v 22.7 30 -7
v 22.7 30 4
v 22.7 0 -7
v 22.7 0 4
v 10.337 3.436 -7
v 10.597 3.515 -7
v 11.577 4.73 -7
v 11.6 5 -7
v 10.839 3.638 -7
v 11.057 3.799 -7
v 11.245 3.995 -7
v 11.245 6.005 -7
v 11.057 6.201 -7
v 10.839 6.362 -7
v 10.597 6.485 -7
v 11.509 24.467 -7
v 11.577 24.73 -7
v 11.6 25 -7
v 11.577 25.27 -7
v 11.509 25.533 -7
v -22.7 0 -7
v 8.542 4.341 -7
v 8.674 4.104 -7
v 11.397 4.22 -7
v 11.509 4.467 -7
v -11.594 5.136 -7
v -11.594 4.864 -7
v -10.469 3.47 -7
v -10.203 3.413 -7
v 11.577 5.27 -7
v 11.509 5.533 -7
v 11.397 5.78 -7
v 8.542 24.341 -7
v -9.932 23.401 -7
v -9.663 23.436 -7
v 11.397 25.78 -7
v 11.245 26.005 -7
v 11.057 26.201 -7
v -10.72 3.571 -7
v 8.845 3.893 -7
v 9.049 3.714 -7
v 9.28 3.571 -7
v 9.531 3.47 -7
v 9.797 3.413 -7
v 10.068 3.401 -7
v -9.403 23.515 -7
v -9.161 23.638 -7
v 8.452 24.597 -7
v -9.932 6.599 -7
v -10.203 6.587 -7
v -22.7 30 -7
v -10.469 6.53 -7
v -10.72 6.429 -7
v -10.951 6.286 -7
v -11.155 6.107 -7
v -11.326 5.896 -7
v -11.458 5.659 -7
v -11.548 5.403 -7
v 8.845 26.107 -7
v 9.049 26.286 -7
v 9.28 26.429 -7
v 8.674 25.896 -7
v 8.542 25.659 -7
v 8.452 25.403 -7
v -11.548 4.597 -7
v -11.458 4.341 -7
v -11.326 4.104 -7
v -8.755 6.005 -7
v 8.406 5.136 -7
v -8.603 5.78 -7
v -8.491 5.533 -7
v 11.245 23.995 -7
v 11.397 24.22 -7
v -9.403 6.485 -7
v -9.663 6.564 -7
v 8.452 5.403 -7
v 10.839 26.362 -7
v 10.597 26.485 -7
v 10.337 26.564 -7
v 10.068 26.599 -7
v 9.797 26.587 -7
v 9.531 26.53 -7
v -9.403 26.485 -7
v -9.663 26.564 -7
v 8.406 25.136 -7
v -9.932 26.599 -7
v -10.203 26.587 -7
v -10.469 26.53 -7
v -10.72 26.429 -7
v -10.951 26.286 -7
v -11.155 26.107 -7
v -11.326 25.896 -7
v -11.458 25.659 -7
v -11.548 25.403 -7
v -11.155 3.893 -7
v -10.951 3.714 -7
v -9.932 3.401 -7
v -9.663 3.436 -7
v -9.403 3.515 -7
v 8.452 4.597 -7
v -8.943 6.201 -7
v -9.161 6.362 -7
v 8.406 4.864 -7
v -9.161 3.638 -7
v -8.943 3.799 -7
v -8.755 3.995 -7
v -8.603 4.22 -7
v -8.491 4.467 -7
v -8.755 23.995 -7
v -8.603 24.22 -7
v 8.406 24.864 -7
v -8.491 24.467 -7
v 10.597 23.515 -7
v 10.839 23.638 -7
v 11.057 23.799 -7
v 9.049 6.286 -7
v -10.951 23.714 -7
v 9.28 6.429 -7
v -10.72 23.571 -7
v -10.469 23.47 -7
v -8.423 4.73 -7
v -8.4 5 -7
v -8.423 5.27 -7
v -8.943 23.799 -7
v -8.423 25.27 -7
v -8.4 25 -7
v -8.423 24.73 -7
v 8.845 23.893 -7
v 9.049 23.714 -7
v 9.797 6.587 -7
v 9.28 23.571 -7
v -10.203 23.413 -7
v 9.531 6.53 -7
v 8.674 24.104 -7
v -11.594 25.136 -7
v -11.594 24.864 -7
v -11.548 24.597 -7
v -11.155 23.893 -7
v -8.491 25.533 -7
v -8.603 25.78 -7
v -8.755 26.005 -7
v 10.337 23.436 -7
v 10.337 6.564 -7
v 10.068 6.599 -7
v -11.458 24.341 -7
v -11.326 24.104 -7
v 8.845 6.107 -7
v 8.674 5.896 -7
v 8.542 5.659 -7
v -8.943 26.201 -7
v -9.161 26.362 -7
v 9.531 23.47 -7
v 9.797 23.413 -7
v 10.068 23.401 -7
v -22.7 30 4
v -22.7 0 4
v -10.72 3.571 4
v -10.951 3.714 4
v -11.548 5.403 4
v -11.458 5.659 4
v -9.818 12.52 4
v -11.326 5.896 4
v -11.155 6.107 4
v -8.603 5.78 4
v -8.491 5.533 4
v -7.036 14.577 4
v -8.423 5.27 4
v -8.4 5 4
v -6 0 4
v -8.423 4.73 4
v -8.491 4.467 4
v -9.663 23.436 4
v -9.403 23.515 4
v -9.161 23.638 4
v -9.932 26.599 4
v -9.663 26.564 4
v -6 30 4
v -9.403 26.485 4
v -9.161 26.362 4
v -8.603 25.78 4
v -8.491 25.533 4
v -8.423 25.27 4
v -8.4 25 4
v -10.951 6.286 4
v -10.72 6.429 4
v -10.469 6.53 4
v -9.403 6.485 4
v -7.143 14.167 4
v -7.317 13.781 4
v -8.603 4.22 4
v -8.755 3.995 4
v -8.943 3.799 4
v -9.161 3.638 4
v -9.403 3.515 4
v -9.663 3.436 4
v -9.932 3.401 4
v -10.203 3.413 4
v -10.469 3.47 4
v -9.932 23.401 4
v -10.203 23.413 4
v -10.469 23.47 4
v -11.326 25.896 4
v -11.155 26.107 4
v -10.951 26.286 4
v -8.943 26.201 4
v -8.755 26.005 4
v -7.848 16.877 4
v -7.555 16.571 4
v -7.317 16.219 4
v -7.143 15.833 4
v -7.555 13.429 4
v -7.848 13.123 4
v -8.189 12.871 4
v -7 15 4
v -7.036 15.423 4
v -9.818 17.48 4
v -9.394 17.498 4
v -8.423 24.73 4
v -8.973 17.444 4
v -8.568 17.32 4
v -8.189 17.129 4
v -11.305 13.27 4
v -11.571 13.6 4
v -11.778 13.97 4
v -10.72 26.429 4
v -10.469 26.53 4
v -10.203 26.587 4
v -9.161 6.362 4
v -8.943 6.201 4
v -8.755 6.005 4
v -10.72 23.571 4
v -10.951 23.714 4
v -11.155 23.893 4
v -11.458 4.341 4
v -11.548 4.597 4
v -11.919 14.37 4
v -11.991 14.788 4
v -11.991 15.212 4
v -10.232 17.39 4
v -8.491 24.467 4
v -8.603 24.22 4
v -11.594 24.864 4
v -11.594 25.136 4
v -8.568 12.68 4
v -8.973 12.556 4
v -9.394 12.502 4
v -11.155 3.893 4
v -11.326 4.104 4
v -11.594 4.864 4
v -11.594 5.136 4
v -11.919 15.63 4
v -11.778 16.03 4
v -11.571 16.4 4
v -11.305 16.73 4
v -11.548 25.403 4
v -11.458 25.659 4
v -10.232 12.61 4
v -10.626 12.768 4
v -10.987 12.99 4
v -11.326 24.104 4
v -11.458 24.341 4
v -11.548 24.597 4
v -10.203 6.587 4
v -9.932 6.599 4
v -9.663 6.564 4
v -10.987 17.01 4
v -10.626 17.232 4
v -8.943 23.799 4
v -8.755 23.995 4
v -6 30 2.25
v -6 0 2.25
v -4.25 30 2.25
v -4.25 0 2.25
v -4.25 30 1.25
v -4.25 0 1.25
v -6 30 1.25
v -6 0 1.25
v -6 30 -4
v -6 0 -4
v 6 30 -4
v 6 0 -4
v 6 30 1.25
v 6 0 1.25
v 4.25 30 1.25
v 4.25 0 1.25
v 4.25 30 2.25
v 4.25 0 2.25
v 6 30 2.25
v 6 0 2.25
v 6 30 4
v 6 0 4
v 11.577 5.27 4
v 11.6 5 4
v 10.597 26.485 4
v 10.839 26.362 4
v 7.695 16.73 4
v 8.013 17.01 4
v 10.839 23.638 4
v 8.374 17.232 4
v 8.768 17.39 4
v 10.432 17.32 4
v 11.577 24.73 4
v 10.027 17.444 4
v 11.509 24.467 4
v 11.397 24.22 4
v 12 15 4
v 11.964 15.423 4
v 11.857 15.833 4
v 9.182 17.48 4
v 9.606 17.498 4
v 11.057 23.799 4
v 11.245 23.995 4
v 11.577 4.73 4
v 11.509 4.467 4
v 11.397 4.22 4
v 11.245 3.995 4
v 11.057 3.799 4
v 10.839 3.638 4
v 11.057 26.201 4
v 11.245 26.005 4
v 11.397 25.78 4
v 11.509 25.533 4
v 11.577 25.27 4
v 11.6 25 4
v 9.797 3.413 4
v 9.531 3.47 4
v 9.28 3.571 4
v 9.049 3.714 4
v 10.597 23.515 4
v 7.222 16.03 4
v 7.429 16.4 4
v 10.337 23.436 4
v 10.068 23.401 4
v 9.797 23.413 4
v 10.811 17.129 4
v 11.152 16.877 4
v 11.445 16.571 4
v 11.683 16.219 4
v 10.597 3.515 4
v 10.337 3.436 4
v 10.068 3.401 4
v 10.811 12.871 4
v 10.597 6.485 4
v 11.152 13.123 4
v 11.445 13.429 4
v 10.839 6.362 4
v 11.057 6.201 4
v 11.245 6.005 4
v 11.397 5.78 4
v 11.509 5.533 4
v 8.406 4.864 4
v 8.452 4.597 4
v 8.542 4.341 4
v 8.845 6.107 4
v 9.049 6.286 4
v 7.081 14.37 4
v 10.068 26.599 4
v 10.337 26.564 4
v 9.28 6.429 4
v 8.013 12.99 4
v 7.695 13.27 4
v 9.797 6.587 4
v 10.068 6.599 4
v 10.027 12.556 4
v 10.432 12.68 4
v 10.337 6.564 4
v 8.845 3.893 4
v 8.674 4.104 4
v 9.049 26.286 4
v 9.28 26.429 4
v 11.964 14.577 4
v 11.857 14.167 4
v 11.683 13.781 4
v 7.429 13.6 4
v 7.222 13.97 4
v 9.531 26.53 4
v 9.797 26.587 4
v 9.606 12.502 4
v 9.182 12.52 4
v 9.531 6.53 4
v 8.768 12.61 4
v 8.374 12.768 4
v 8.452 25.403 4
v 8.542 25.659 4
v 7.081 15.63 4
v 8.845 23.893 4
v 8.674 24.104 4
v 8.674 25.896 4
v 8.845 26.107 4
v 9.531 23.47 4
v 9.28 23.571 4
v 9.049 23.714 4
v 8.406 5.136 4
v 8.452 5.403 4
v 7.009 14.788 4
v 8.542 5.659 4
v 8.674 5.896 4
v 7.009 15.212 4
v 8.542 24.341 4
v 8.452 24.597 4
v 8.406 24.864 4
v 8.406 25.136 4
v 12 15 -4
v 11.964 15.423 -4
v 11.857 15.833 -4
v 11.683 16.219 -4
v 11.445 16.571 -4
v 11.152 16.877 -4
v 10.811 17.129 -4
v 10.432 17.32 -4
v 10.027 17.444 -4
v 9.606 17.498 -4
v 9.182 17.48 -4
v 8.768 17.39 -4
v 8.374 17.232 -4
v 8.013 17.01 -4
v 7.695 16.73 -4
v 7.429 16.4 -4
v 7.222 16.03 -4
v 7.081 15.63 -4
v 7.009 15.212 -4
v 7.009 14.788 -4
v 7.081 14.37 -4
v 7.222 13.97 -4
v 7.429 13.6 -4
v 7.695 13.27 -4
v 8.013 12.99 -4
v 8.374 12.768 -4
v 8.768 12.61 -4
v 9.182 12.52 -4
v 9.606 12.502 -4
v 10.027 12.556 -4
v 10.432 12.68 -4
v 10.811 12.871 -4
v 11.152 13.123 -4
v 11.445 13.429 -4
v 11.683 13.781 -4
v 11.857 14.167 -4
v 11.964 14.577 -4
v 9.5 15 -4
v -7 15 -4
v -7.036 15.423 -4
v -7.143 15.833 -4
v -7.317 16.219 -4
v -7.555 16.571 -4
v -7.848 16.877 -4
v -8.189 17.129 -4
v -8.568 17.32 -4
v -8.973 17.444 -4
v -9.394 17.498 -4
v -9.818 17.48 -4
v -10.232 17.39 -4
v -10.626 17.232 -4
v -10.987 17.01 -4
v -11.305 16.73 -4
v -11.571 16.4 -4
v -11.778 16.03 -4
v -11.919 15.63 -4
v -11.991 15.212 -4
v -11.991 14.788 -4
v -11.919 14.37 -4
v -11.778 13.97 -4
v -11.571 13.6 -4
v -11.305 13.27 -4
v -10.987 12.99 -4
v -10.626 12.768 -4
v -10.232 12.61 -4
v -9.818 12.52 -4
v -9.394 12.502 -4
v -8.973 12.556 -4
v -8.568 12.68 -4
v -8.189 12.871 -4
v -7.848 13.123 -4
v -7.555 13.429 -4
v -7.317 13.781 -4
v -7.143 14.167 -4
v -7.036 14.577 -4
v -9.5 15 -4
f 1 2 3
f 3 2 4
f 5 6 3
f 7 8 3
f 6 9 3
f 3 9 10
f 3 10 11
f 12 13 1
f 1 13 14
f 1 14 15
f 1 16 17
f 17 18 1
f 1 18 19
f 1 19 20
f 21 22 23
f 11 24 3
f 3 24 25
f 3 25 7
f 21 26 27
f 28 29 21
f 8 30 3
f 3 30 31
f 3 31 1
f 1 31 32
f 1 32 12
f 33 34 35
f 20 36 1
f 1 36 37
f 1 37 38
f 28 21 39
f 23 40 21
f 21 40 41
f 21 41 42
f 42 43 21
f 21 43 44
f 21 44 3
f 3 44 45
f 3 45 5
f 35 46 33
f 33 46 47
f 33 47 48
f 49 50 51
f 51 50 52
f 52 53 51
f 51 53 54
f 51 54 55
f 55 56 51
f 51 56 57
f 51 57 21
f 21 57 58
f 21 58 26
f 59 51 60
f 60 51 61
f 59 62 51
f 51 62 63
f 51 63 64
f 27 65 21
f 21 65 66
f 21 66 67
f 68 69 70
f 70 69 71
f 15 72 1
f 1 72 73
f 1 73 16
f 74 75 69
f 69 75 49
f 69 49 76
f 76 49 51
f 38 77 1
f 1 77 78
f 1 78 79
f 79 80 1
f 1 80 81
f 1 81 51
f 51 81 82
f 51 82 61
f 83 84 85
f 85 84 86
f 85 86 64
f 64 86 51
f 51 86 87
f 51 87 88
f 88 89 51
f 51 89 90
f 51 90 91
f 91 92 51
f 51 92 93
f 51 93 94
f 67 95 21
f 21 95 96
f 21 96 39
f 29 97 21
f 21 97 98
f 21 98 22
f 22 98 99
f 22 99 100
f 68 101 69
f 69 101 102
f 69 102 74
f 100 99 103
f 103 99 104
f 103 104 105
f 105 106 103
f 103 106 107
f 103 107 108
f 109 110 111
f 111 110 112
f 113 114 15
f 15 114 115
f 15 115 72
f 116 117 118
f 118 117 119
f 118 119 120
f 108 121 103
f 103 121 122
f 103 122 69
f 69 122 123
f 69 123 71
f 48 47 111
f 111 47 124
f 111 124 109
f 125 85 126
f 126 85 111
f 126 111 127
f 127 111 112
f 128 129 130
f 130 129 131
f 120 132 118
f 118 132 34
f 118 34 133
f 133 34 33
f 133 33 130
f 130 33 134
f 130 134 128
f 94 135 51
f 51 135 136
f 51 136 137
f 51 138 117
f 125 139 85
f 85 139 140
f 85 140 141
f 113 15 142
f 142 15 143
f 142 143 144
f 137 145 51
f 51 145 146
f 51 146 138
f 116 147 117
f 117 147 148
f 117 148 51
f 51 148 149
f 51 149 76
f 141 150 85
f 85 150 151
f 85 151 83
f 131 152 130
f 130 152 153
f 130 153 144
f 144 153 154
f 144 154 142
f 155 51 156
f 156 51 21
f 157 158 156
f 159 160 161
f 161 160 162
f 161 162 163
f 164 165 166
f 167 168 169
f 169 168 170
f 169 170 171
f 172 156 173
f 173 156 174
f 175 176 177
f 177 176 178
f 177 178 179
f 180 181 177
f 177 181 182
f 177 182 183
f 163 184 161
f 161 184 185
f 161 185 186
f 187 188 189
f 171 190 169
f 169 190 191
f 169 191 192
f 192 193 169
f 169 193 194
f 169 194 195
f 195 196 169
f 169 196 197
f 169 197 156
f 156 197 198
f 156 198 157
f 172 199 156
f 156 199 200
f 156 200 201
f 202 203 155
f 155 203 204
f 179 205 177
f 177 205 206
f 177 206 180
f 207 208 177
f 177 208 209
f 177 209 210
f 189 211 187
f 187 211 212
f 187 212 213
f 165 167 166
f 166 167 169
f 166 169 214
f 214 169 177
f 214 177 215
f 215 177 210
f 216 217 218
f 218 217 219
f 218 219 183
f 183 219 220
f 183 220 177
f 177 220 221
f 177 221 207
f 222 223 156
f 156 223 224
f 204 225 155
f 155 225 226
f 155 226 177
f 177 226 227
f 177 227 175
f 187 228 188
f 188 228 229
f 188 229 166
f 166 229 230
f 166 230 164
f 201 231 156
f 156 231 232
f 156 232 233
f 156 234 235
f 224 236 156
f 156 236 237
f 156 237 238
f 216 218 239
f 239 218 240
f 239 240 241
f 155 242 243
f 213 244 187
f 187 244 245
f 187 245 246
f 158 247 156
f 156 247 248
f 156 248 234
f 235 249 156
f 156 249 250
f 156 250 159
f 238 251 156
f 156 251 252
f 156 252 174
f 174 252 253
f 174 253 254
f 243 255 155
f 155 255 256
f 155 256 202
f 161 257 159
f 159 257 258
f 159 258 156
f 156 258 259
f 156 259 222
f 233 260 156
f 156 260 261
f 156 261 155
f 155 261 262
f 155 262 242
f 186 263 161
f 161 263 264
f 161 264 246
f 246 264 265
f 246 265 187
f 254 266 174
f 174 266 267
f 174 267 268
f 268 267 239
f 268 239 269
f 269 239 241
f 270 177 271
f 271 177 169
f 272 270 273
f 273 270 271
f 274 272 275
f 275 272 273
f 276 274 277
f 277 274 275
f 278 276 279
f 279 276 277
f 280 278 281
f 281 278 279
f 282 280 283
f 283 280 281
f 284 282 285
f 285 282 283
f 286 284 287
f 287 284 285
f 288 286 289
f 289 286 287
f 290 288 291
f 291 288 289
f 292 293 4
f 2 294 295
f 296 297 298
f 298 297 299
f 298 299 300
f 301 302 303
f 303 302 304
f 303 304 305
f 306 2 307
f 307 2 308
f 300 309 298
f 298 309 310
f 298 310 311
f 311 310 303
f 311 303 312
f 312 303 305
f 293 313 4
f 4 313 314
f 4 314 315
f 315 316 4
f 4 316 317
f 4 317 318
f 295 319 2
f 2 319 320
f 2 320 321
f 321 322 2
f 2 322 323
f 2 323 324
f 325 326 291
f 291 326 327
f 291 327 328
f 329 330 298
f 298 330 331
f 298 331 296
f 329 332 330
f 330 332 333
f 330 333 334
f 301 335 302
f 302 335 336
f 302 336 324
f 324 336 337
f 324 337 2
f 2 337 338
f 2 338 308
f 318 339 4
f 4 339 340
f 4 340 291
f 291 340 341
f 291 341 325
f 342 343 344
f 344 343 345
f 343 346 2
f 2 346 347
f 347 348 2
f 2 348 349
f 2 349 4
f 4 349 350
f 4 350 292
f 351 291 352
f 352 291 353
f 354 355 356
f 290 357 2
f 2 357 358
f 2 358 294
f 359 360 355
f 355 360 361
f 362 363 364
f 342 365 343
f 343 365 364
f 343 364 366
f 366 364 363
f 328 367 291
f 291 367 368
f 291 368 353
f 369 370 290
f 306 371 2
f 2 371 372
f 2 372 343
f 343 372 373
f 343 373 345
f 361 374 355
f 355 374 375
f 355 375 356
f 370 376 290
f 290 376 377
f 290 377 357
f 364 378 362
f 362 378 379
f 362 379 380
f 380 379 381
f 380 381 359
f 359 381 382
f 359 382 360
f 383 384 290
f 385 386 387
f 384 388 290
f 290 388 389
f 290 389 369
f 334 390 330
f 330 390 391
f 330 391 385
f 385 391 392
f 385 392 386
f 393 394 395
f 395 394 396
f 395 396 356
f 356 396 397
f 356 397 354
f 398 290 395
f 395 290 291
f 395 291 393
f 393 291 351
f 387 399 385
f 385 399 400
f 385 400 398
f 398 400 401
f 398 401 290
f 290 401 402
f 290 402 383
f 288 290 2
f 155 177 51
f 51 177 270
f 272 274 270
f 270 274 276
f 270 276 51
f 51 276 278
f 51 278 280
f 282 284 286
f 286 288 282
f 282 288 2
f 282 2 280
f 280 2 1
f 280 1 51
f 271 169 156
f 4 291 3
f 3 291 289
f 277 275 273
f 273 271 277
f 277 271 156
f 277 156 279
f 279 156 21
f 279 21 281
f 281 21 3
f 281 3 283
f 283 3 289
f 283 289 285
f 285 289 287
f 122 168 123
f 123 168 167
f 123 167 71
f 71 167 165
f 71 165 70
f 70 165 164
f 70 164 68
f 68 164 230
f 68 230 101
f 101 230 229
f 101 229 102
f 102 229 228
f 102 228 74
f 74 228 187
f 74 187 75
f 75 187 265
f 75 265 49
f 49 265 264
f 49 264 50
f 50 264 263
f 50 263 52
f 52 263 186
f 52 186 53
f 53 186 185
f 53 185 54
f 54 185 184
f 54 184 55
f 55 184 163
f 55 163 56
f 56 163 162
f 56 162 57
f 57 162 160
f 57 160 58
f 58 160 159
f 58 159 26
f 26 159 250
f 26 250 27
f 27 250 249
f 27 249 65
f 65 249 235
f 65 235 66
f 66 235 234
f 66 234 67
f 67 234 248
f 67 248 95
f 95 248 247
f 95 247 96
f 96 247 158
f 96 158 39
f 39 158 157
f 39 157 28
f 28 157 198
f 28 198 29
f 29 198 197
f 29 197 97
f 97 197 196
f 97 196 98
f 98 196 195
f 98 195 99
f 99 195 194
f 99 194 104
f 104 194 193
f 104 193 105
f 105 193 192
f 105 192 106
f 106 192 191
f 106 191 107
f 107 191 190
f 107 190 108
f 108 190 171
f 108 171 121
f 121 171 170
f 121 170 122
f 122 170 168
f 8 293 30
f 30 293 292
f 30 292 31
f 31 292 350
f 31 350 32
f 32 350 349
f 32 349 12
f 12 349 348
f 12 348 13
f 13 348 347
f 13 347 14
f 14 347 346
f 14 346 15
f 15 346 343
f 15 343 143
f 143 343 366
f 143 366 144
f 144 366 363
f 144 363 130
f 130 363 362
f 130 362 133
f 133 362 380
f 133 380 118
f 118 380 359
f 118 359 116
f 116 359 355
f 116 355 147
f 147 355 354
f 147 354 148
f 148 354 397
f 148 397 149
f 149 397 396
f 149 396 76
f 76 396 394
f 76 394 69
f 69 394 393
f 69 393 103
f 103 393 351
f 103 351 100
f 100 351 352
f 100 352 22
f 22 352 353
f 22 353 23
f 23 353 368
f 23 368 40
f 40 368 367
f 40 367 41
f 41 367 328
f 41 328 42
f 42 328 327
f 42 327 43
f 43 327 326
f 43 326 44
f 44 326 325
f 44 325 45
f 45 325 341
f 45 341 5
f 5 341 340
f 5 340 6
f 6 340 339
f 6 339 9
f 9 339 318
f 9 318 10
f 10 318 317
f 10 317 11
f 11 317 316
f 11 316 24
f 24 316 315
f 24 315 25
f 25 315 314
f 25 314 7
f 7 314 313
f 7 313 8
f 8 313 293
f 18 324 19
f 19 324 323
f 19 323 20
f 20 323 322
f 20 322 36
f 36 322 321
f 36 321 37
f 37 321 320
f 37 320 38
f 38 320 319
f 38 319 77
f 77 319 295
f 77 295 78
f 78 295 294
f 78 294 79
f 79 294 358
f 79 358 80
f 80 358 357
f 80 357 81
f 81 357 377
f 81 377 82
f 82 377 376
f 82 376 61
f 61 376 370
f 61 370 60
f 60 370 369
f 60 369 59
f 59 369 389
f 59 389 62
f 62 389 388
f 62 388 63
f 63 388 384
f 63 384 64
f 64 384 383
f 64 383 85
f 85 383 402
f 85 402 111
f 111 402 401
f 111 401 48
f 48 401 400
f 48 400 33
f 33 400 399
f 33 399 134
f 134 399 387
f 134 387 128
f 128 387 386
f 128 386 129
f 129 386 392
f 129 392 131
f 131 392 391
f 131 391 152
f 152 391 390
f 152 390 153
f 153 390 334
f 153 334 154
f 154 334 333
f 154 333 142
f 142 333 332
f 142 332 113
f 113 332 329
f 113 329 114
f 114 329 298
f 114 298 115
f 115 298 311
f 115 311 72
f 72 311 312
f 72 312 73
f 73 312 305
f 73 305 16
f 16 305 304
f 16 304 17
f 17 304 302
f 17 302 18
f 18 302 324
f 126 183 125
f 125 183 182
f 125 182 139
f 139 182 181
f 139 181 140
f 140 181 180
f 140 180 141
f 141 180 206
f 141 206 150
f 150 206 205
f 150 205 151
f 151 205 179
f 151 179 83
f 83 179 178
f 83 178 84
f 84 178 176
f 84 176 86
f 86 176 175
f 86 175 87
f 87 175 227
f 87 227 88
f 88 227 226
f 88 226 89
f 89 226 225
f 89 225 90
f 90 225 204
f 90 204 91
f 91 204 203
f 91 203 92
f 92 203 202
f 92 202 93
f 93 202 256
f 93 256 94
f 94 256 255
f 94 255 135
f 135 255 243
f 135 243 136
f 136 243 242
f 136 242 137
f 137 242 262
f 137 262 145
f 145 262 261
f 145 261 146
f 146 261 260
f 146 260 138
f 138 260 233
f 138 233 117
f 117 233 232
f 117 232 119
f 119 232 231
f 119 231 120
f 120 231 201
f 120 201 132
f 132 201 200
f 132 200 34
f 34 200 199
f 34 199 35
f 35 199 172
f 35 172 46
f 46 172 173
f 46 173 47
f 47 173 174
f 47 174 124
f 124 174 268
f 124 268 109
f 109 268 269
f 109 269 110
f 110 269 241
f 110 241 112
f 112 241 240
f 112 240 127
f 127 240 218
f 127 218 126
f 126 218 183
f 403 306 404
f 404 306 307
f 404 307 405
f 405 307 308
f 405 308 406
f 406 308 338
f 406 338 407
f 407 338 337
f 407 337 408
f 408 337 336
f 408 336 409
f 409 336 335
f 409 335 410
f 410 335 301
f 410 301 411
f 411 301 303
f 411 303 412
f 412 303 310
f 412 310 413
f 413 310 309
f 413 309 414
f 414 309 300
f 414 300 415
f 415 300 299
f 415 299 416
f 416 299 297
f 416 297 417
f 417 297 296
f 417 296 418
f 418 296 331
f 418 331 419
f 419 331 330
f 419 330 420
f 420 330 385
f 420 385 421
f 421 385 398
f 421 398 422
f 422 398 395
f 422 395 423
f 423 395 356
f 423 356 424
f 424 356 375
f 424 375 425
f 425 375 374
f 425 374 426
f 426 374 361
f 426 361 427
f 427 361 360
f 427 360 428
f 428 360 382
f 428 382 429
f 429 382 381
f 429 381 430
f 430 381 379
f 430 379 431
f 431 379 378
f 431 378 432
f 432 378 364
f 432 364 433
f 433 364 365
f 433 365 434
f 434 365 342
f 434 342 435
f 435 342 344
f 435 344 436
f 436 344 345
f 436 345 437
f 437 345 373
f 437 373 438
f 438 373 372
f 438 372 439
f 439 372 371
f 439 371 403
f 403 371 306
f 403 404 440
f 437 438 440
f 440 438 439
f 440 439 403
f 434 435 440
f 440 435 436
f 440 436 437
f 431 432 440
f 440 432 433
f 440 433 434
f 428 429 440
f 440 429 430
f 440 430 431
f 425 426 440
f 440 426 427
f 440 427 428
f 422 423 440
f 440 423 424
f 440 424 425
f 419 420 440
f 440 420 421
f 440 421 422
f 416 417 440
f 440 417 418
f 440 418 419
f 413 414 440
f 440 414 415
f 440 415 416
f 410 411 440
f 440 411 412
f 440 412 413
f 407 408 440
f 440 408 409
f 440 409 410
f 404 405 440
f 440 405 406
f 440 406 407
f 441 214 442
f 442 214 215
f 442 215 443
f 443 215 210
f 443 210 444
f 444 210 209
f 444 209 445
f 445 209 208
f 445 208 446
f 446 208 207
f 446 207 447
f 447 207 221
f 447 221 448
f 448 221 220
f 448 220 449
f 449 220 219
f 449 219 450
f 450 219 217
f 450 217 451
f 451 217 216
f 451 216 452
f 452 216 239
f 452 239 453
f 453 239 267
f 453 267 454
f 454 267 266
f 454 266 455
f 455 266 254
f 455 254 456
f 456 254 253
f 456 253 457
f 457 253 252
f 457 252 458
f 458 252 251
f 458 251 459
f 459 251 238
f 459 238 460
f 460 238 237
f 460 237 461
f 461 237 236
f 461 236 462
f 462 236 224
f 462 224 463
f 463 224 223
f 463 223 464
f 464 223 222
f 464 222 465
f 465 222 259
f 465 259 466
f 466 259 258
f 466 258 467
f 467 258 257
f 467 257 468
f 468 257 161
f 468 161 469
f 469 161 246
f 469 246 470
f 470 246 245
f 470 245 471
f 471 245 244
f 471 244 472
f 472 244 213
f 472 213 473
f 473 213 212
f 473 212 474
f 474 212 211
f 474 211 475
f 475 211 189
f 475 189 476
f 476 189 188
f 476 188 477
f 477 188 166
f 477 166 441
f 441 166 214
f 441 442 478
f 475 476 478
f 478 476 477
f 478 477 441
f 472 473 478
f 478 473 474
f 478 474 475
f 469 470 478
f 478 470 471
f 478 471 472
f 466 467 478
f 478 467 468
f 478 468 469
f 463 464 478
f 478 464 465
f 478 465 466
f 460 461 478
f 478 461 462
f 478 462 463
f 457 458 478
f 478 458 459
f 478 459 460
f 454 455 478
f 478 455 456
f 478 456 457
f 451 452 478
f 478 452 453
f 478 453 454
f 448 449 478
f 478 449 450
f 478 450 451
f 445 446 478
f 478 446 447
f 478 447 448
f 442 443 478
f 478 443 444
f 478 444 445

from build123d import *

# Parameters (mm, degrees)
BOSS_EXTRUDE1_DEPTH   = 30
F_3_0MM_DOWEL_HOLE1_D = 3.2
SKETCH6_R             = 2.5
CUT_EXTRUDE1_DEPTH    = 8


with BuildPart() as part:
    # Sketch1 → Boss-Extrude1 (new body)
    with BuildSketch(Plane(origin=(0, 0, 0), x_dir=(1, 0, 0), z_dir=(0, 1, 0))):
        Polygon((-6, -1.25), (-4.25, -1.25), (-4.25, -2.25), (-6, -2.25), (-6, -4), (-22.7, -4), (-22.7, 7), (22.7, 7), (22.7, -4), (6, -4), (6, -2.25), (4.25, -2.25), (4.25, -1.25), (6, -1.25), (6, 4), (-6, 4), align=None)
    extrude(amount=BOSS_EXTRUDE1_DEPTH)

    # Ø3.0mm Dowel Hole1 (through all)
    with Locations(Plane.XY.offset(4)):
        with Locations((-10, 25), (10, 25), (10, 5), (-10, 5)):
            Hole(F_3_0MM_DOWEL_HOLE1_D / 2)

    # Sketch6 → Cut-Extrude1 (cut)
    with BuildSketch(Plane.XY.offset(4)):
        with Locations((9.5, 15)):
            Circle(SKETCH6_R)
        with Locations((-9.5, 15)):
            Circle(SKETCH6_R)
    extrude(amount=-CUT_EXTRUDE1_DEPTH, mode=Mode.SUBTRACT)


solid = part.part
